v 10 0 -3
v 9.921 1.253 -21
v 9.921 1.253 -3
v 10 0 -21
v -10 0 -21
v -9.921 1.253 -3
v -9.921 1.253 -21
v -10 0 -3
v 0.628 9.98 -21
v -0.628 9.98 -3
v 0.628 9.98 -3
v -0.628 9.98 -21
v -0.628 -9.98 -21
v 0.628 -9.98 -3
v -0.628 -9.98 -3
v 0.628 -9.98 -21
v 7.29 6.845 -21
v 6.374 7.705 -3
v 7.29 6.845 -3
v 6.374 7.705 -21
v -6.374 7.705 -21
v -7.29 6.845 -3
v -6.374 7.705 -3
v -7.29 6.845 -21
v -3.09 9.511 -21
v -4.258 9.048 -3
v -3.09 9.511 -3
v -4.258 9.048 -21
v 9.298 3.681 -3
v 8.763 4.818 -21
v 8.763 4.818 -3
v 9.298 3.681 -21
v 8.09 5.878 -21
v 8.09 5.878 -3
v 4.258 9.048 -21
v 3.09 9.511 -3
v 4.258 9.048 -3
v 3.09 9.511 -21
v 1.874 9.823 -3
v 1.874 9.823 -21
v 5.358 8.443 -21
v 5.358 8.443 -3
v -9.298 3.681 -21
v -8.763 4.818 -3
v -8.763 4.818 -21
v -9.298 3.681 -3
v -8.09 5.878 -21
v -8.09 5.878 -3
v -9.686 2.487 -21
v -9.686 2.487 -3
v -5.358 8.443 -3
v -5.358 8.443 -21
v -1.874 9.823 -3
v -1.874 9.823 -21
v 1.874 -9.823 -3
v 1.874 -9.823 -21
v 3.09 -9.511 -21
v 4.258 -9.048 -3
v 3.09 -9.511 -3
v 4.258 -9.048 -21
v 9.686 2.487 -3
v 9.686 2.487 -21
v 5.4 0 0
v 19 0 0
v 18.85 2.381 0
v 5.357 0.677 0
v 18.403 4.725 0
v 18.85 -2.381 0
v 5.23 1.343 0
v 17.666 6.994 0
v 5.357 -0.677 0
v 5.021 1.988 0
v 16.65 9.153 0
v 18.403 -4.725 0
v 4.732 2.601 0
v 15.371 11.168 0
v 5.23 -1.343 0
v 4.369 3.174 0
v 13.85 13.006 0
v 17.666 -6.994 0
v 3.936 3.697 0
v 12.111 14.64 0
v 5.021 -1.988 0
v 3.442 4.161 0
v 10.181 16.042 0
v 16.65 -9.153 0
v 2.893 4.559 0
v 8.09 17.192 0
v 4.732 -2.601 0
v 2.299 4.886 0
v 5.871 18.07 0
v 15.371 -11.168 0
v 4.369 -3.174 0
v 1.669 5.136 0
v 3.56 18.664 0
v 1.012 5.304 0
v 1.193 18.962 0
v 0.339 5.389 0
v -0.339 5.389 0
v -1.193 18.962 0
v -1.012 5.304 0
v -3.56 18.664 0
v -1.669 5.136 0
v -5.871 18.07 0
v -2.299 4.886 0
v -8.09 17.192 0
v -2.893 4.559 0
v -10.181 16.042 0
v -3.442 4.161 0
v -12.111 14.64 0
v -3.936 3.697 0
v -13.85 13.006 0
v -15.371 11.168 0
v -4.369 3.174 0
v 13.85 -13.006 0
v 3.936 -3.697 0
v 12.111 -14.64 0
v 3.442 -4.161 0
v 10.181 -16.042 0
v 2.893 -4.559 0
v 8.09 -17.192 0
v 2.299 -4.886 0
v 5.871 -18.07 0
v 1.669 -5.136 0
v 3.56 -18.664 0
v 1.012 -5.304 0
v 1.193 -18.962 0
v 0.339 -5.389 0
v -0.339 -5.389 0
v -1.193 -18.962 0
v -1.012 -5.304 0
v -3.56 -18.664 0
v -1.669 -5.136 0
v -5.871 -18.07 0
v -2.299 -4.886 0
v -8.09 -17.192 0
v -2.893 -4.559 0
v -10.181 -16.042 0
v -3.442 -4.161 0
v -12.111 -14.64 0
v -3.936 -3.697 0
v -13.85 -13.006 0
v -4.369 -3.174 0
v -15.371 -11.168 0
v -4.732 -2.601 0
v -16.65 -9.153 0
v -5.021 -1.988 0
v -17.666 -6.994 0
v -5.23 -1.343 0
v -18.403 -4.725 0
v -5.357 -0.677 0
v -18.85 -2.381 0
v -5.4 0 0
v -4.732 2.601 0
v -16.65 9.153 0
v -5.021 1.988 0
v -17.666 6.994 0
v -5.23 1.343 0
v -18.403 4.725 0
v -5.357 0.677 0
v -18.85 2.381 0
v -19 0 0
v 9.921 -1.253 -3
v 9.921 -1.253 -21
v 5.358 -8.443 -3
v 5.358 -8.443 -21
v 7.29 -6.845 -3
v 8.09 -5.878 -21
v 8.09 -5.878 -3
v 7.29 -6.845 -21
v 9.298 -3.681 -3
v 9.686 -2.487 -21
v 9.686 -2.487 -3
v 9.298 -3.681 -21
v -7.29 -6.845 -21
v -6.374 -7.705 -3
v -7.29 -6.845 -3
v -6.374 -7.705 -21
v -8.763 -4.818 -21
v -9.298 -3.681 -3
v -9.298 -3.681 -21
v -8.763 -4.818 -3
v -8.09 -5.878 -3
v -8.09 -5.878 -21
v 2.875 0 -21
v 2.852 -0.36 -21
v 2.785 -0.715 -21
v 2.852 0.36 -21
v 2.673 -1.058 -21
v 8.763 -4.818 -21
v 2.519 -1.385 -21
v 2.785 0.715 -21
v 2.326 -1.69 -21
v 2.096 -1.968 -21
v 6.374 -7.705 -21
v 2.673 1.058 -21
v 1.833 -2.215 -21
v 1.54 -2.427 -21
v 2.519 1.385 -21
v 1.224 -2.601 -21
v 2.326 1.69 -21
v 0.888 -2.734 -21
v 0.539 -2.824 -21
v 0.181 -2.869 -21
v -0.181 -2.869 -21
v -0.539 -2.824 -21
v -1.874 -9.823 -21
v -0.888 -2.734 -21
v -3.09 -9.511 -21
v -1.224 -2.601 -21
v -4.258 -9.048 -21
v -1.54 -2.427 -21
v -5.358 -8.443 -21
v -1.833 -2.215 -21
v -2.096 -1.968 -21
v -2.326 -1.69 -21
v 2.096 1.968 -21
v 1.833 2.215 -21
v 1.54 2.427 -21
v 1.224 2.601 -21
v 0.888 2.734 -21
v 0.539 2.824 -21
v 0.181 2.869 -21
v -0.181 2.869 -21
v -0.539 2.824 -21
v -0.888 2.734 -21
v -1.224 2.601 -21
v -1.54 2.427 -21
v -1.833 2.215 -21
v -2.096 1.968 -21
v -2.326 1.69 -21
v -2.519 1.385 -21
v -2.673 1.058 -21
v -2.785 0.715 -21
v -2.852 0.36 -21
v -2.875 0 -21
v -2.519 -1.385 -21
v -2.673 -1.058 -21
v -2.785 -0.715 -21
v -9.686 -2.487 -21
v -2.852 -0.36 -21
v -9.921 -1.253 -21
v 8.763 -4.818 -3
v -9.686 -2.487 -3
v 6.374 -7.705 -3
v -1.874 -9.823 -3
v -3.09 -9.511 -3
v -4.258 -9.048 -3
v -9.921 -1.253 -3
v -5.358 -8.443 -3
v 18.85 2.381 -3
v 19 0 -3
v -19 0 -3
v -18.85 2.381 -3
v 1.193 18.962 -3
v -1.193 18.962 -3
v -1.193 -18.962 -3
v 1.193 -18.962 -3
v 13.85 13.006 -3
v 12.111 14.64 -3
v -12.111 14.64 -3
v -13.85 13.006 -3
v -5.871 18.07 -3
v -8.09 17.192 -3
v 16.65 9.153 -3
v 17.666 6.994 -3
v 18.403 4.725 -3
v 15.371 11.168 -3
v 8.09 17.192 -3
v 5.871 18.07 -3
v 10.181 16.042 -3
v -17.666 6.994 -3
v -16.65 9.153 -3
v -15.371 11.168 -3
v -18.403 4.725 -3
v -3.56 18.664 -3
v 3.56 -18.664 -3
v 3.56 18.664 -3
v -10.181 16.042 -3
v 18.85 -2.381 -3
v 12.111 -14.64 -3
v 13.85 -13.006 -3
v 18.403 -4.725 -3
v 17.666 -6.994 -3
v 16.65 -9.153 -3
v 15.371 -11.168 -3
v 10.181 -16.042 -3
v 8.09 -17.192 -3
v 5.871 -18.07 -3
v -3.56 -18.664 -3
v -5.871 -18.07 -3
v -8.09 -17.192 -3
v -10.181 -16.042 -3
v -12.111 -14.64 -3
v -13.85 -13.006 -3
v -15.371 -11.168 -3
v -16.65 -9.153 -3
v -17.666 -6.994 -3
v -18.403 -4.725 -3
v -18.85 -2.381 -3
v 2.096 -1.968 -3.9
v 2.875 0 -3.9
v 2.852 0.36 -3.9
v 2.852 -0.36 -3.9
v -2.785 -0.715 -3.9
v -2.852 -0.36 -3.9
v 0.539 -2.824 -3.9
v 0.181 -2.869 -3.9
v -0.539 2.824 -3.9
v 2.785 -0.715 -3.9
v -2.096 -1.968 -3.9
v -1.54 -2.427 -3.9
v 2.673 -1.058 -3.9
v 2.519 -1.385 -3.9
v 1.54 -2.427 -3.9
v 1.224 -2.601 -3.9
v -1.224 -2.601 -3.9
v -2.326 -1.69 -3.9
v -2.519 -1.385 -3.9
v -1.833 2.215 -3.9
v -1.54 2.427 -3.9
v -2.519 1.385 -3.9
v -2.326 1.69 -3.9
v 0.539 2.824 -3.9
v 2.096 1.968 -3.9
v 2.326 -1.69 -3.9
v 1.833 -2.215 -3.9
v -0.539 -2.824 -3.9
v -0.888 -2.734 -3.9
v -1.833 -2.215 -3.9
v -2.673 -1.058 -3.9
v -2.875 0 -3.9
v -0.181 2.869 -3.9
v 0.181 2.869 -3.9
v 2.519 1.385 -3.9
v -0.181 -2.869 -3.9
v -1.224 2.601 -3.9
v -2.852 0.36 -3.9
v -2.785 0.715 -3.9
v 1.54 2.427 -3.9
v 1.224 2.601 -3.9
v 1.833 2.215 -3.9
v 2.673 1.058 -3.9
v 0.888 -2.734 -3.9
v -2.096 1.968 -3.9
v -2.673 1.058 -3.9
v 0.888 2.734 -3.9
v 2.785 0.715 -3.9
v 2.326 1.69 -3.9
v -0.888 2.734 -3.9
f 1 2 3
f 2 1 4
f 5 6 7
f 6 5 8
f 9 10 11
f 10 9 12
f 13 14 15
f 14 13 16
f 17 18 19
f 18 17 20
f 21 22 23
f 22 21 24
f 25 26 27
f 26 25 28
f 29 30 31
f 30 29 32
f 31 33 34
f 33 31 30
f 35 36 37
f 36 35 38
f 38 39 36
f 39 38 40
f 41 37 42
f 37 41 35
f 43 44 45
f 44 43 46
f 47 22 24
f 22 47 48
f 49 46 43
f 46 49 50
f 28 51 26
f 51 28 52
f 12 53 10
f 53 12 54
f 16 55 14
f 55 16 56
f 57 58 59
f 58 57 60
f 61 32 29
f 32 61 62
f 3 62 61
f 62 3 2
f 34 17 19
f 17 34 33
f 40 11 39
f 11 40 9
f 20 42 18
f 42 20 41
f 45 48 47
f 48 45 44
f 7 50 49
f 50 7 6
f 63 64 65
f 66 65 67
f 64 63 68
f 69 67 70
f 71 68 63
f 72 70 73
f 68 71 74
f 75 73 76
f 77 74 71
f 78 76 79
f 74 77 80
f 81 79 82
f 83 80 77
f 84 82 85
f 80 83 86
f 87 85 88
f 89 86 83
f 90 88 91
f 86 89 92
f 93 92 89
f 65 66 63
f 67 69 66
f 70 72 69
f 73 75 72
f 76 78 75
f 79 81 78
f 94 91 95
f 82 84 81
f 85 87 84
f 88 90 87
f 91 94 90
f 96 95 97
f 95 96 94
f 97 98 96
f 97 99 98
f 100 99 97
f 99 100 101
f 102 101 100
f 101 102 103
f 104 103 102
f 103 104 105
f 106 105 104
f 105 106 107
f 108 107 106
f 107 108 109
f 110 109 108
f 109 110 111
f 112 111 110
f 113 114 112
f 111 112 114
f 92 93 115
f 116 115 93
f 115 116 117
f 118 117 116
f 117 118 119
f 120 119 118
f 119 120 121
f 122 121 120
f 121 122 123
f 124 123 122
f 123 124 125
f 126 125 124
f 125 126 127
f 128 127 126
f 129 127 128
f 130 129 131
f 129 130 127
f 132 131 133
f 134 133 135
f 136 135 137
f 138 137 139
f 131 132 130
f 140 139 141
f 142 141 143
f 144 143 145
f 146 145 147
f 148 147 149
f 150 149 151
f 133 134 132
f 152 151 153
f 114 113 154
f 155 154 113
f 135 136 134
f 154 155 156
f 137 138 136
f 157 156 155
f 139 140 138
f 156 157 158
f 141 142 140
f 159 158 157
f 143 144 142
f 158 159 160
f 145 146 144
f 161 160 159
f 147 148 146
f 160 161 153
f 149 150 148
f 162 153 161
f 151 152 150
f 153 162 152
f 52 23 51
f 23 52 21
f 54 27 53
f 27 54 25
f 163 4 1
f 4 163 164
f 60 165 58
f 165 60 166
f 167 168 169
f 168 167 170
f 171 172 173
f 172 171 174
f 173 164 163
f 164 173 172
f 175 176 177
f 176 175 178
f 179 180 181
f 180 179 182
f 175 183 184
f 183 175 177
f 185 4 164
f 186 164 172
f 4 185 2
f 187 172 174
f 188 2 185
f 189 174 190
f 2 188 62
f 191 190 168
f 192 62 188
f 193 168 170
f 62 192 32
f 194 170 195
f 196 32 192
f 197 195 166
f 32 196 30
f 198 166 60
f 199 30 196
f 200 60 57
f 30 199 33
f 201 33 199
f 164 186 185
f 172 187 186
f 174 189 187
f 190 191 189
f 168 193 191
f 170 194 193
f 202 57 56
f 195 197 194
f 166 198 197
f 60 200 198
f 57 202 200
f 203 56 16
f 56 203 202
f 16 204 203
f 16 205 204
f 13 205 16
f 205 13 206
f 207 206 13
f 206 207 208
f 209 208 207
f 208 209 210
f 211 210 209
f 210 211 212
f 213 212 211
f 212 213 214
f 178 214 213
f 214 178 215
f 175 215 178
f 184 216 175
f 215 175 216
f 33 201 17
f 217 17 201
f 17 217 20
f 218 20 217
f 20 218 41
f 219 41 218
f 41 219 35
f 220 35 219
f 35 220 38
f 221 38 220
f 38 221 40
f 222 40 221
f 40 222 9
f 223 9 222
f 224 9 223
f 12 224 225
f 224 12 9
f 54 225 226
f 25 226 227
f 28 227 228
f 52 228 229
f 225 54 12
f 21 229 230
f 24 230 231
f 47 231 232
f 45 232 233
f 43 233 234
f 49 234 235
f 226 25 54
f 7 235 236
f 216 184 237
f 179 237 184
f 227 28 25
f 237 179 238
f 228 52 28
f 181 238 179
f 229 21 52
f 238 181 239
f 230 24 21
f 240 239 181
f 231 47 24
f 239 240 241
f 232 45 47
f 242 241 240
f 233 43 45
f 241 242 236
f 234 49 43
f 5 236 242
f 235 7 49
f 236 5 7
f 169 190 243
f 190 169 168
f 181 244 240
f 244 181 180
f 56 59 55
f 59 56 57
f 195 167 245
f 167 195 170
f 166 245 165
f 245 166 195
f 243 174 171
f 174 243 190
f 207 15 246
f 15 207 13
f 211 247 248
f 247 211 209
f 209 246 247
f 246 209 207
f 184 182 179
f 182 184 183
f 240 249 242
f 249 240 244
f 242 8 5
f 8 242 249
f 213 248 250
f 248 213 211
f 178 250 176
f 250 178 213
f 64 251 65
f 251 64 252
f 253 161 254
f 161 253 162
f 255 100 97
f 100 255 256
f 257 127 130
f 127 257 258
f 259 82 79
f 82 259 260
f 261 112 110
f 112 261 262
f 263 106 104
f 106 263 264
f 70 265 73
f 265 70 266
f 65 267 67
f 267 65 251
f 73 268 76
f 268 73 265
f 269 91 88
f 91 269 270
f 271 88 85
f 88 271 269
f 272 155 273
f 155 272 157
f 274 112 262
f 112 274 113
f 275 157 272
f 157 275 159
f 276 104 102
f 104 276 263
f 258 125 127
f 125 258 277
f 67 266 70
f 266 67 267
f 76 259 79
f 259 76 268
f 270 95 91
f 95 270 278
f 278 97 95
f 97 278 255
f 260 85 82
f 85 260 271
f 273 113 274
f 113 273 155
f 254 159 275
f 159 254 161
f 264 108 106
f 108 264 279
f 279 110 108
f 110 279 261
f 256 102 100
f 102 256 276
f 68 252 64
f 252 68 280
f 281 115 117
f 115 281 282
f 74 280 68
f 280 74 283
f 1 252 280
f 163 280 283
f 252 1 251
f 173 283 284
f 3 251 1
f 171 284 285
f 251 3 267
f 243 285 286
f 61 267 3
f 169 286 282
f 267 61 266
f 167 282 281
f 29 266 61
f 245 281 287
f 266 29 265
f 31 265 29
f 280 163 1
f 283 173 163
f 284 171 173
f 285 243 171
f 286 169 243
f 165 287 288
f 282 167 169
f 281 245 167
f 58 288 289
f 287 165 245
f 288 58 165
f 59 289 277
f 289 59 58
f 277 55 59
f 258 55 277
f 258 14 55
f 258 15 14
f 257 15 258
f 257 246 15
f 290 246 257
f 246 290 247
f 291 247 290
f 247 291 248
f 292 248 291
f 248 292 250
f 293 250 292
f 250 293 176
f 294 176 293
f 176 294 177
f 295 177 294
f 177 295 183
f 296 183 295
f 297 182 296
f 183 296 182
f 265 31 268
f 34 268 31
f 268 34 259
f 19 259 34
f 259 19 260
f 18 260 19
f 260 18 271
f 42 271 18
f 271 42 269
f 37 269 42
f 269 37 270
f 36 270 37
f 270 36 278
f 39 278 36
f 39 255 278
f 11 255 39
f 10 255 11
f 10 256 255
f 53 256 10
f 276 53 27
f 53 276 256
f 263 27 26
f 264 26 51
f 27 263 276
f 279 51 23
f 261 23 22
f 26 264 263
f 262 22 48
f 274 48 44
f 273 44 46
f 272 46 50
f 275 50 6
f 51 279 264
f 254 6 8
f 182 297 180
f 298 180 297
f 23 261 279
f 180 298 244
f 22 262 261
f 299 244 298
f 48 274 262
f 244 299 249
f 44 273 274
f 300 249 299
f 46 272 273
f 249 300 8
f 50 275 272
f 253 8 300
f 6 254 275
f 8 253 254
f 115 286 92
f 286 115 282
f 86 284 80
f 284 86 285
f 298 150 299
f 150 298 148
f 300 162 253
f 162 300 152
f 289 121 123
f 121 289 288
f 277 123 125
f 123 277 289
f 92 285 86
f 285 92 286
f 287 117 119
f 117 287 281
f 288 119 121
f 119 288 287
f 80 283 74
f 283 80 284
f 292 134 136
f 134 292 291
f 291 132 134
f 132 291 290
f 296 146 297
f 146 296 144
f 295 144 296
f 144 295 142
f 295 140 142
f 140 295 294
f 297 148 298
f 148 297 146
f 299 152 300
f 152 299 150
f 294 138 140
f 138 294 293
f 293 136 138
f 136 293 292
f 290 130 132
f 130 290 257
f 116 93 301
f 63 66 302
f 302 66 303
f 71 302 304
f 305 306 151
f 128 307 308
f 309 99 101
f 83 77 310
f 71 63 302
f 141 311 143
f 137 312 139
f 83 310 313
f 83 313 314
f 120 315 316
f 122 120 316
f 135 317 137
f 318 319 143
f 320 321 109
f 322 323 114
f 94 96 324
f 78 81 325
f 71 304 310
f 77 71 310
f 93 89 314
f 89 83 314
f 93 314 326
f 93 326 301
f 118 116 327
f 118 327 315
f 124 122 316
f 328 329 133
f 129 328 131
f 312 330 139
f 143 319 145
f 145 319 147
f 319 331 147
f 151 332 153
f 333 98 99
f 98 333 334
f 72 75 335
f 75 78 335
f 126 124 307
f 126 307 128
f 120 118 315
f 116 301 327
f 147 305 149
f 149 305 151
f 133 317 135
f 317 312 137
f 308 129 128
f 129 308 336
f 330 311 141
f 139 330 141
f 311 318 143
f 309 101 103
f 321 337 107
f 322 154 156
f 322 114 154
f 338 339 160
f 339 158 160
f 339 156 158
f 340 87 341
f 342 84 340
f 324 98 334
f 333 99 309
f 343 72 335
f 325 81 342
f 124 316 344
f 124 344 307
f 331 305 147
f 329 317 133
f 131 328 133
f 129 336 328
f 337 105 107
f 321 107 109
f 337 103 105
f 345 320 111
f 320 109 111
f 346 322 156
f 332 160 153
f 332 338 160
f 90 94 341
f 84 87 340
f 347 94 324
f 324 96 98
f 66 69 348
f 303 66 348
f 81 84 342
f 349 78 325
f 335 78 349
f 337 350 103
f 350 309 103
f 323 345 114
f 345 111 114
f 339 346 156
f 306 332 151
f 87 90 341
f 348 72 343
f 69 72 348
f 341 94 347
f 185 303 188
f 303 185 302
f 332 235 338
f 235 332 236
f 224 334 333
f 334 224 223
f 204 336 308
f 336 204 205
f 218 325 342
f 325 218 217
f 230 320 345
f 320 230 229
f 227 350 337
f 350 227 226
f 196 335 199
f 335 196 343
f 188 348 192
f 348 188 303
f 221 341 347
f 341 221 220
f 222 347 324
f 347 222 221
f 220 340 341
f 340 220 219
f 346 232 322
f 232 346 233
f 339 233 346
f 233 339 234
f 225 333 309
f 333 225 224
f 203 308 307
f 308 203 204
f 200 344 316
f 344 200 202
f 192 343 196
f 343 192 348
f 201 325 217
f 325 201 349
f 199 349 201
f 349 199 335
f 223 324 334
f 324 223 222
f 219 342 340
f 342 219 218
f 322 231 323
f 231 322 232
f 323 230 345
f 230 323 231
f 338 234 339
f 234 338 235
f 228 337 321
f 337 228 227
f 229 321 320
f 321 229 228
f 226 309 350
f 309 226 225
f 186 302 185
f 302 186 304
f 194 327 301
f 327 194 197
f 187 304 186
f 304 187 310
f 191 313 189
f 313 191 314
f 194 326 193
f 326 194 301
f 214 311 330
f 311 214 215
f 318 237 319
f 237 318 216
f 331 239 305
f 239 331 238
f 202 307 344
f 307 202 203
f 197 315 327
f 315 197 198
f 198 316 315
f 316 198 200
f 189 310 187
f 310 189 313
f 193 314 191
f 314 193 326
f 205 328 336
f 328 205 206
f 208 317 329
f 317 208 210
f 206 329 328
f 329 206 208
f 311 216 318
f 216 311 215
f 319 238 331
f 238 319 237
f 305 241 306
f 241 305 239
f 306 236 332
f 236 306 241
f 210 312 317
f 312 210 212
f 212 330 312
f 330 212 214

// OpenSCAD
$fn = 50;


difference() {
	union() {
		translate(v = [0, 0, -21.0000000000]) {
			cylinder(h = 21, r = 10.0000000000);
		}
		translate(v = [0, 0, -3.0000000000]) {
			cylinder(h = 3, r = 19.0000000000);
		}
	}
	union() {
		translate(v = [0, 0, 0]) {
			rotate(a = [0, 0, 0]) {
				difference() {
					union() {
						#translate(v = [0, 0, -21.0000000000]) {
							cylinder(h = 21, r = 2.6000000000);
						}
						#translate(v = [0, 0, -3.9000000000]) {
							cylinder(h = 3.9000000000, r = 10.0000000000, r1 = 2.8750000000, r2 = 5.4000000000);
						}
						#translate(v = [0, 0, -21.0000000000]) {
							cylinder(h = 21, r = 2.8750000000);
						}
						#translate(v = [0, 0, -21.0000000000]) {
							cylinder(h = 21, r = 2.6000000000);
						}
					}
					union();
				}
			}
		}
	}
}
